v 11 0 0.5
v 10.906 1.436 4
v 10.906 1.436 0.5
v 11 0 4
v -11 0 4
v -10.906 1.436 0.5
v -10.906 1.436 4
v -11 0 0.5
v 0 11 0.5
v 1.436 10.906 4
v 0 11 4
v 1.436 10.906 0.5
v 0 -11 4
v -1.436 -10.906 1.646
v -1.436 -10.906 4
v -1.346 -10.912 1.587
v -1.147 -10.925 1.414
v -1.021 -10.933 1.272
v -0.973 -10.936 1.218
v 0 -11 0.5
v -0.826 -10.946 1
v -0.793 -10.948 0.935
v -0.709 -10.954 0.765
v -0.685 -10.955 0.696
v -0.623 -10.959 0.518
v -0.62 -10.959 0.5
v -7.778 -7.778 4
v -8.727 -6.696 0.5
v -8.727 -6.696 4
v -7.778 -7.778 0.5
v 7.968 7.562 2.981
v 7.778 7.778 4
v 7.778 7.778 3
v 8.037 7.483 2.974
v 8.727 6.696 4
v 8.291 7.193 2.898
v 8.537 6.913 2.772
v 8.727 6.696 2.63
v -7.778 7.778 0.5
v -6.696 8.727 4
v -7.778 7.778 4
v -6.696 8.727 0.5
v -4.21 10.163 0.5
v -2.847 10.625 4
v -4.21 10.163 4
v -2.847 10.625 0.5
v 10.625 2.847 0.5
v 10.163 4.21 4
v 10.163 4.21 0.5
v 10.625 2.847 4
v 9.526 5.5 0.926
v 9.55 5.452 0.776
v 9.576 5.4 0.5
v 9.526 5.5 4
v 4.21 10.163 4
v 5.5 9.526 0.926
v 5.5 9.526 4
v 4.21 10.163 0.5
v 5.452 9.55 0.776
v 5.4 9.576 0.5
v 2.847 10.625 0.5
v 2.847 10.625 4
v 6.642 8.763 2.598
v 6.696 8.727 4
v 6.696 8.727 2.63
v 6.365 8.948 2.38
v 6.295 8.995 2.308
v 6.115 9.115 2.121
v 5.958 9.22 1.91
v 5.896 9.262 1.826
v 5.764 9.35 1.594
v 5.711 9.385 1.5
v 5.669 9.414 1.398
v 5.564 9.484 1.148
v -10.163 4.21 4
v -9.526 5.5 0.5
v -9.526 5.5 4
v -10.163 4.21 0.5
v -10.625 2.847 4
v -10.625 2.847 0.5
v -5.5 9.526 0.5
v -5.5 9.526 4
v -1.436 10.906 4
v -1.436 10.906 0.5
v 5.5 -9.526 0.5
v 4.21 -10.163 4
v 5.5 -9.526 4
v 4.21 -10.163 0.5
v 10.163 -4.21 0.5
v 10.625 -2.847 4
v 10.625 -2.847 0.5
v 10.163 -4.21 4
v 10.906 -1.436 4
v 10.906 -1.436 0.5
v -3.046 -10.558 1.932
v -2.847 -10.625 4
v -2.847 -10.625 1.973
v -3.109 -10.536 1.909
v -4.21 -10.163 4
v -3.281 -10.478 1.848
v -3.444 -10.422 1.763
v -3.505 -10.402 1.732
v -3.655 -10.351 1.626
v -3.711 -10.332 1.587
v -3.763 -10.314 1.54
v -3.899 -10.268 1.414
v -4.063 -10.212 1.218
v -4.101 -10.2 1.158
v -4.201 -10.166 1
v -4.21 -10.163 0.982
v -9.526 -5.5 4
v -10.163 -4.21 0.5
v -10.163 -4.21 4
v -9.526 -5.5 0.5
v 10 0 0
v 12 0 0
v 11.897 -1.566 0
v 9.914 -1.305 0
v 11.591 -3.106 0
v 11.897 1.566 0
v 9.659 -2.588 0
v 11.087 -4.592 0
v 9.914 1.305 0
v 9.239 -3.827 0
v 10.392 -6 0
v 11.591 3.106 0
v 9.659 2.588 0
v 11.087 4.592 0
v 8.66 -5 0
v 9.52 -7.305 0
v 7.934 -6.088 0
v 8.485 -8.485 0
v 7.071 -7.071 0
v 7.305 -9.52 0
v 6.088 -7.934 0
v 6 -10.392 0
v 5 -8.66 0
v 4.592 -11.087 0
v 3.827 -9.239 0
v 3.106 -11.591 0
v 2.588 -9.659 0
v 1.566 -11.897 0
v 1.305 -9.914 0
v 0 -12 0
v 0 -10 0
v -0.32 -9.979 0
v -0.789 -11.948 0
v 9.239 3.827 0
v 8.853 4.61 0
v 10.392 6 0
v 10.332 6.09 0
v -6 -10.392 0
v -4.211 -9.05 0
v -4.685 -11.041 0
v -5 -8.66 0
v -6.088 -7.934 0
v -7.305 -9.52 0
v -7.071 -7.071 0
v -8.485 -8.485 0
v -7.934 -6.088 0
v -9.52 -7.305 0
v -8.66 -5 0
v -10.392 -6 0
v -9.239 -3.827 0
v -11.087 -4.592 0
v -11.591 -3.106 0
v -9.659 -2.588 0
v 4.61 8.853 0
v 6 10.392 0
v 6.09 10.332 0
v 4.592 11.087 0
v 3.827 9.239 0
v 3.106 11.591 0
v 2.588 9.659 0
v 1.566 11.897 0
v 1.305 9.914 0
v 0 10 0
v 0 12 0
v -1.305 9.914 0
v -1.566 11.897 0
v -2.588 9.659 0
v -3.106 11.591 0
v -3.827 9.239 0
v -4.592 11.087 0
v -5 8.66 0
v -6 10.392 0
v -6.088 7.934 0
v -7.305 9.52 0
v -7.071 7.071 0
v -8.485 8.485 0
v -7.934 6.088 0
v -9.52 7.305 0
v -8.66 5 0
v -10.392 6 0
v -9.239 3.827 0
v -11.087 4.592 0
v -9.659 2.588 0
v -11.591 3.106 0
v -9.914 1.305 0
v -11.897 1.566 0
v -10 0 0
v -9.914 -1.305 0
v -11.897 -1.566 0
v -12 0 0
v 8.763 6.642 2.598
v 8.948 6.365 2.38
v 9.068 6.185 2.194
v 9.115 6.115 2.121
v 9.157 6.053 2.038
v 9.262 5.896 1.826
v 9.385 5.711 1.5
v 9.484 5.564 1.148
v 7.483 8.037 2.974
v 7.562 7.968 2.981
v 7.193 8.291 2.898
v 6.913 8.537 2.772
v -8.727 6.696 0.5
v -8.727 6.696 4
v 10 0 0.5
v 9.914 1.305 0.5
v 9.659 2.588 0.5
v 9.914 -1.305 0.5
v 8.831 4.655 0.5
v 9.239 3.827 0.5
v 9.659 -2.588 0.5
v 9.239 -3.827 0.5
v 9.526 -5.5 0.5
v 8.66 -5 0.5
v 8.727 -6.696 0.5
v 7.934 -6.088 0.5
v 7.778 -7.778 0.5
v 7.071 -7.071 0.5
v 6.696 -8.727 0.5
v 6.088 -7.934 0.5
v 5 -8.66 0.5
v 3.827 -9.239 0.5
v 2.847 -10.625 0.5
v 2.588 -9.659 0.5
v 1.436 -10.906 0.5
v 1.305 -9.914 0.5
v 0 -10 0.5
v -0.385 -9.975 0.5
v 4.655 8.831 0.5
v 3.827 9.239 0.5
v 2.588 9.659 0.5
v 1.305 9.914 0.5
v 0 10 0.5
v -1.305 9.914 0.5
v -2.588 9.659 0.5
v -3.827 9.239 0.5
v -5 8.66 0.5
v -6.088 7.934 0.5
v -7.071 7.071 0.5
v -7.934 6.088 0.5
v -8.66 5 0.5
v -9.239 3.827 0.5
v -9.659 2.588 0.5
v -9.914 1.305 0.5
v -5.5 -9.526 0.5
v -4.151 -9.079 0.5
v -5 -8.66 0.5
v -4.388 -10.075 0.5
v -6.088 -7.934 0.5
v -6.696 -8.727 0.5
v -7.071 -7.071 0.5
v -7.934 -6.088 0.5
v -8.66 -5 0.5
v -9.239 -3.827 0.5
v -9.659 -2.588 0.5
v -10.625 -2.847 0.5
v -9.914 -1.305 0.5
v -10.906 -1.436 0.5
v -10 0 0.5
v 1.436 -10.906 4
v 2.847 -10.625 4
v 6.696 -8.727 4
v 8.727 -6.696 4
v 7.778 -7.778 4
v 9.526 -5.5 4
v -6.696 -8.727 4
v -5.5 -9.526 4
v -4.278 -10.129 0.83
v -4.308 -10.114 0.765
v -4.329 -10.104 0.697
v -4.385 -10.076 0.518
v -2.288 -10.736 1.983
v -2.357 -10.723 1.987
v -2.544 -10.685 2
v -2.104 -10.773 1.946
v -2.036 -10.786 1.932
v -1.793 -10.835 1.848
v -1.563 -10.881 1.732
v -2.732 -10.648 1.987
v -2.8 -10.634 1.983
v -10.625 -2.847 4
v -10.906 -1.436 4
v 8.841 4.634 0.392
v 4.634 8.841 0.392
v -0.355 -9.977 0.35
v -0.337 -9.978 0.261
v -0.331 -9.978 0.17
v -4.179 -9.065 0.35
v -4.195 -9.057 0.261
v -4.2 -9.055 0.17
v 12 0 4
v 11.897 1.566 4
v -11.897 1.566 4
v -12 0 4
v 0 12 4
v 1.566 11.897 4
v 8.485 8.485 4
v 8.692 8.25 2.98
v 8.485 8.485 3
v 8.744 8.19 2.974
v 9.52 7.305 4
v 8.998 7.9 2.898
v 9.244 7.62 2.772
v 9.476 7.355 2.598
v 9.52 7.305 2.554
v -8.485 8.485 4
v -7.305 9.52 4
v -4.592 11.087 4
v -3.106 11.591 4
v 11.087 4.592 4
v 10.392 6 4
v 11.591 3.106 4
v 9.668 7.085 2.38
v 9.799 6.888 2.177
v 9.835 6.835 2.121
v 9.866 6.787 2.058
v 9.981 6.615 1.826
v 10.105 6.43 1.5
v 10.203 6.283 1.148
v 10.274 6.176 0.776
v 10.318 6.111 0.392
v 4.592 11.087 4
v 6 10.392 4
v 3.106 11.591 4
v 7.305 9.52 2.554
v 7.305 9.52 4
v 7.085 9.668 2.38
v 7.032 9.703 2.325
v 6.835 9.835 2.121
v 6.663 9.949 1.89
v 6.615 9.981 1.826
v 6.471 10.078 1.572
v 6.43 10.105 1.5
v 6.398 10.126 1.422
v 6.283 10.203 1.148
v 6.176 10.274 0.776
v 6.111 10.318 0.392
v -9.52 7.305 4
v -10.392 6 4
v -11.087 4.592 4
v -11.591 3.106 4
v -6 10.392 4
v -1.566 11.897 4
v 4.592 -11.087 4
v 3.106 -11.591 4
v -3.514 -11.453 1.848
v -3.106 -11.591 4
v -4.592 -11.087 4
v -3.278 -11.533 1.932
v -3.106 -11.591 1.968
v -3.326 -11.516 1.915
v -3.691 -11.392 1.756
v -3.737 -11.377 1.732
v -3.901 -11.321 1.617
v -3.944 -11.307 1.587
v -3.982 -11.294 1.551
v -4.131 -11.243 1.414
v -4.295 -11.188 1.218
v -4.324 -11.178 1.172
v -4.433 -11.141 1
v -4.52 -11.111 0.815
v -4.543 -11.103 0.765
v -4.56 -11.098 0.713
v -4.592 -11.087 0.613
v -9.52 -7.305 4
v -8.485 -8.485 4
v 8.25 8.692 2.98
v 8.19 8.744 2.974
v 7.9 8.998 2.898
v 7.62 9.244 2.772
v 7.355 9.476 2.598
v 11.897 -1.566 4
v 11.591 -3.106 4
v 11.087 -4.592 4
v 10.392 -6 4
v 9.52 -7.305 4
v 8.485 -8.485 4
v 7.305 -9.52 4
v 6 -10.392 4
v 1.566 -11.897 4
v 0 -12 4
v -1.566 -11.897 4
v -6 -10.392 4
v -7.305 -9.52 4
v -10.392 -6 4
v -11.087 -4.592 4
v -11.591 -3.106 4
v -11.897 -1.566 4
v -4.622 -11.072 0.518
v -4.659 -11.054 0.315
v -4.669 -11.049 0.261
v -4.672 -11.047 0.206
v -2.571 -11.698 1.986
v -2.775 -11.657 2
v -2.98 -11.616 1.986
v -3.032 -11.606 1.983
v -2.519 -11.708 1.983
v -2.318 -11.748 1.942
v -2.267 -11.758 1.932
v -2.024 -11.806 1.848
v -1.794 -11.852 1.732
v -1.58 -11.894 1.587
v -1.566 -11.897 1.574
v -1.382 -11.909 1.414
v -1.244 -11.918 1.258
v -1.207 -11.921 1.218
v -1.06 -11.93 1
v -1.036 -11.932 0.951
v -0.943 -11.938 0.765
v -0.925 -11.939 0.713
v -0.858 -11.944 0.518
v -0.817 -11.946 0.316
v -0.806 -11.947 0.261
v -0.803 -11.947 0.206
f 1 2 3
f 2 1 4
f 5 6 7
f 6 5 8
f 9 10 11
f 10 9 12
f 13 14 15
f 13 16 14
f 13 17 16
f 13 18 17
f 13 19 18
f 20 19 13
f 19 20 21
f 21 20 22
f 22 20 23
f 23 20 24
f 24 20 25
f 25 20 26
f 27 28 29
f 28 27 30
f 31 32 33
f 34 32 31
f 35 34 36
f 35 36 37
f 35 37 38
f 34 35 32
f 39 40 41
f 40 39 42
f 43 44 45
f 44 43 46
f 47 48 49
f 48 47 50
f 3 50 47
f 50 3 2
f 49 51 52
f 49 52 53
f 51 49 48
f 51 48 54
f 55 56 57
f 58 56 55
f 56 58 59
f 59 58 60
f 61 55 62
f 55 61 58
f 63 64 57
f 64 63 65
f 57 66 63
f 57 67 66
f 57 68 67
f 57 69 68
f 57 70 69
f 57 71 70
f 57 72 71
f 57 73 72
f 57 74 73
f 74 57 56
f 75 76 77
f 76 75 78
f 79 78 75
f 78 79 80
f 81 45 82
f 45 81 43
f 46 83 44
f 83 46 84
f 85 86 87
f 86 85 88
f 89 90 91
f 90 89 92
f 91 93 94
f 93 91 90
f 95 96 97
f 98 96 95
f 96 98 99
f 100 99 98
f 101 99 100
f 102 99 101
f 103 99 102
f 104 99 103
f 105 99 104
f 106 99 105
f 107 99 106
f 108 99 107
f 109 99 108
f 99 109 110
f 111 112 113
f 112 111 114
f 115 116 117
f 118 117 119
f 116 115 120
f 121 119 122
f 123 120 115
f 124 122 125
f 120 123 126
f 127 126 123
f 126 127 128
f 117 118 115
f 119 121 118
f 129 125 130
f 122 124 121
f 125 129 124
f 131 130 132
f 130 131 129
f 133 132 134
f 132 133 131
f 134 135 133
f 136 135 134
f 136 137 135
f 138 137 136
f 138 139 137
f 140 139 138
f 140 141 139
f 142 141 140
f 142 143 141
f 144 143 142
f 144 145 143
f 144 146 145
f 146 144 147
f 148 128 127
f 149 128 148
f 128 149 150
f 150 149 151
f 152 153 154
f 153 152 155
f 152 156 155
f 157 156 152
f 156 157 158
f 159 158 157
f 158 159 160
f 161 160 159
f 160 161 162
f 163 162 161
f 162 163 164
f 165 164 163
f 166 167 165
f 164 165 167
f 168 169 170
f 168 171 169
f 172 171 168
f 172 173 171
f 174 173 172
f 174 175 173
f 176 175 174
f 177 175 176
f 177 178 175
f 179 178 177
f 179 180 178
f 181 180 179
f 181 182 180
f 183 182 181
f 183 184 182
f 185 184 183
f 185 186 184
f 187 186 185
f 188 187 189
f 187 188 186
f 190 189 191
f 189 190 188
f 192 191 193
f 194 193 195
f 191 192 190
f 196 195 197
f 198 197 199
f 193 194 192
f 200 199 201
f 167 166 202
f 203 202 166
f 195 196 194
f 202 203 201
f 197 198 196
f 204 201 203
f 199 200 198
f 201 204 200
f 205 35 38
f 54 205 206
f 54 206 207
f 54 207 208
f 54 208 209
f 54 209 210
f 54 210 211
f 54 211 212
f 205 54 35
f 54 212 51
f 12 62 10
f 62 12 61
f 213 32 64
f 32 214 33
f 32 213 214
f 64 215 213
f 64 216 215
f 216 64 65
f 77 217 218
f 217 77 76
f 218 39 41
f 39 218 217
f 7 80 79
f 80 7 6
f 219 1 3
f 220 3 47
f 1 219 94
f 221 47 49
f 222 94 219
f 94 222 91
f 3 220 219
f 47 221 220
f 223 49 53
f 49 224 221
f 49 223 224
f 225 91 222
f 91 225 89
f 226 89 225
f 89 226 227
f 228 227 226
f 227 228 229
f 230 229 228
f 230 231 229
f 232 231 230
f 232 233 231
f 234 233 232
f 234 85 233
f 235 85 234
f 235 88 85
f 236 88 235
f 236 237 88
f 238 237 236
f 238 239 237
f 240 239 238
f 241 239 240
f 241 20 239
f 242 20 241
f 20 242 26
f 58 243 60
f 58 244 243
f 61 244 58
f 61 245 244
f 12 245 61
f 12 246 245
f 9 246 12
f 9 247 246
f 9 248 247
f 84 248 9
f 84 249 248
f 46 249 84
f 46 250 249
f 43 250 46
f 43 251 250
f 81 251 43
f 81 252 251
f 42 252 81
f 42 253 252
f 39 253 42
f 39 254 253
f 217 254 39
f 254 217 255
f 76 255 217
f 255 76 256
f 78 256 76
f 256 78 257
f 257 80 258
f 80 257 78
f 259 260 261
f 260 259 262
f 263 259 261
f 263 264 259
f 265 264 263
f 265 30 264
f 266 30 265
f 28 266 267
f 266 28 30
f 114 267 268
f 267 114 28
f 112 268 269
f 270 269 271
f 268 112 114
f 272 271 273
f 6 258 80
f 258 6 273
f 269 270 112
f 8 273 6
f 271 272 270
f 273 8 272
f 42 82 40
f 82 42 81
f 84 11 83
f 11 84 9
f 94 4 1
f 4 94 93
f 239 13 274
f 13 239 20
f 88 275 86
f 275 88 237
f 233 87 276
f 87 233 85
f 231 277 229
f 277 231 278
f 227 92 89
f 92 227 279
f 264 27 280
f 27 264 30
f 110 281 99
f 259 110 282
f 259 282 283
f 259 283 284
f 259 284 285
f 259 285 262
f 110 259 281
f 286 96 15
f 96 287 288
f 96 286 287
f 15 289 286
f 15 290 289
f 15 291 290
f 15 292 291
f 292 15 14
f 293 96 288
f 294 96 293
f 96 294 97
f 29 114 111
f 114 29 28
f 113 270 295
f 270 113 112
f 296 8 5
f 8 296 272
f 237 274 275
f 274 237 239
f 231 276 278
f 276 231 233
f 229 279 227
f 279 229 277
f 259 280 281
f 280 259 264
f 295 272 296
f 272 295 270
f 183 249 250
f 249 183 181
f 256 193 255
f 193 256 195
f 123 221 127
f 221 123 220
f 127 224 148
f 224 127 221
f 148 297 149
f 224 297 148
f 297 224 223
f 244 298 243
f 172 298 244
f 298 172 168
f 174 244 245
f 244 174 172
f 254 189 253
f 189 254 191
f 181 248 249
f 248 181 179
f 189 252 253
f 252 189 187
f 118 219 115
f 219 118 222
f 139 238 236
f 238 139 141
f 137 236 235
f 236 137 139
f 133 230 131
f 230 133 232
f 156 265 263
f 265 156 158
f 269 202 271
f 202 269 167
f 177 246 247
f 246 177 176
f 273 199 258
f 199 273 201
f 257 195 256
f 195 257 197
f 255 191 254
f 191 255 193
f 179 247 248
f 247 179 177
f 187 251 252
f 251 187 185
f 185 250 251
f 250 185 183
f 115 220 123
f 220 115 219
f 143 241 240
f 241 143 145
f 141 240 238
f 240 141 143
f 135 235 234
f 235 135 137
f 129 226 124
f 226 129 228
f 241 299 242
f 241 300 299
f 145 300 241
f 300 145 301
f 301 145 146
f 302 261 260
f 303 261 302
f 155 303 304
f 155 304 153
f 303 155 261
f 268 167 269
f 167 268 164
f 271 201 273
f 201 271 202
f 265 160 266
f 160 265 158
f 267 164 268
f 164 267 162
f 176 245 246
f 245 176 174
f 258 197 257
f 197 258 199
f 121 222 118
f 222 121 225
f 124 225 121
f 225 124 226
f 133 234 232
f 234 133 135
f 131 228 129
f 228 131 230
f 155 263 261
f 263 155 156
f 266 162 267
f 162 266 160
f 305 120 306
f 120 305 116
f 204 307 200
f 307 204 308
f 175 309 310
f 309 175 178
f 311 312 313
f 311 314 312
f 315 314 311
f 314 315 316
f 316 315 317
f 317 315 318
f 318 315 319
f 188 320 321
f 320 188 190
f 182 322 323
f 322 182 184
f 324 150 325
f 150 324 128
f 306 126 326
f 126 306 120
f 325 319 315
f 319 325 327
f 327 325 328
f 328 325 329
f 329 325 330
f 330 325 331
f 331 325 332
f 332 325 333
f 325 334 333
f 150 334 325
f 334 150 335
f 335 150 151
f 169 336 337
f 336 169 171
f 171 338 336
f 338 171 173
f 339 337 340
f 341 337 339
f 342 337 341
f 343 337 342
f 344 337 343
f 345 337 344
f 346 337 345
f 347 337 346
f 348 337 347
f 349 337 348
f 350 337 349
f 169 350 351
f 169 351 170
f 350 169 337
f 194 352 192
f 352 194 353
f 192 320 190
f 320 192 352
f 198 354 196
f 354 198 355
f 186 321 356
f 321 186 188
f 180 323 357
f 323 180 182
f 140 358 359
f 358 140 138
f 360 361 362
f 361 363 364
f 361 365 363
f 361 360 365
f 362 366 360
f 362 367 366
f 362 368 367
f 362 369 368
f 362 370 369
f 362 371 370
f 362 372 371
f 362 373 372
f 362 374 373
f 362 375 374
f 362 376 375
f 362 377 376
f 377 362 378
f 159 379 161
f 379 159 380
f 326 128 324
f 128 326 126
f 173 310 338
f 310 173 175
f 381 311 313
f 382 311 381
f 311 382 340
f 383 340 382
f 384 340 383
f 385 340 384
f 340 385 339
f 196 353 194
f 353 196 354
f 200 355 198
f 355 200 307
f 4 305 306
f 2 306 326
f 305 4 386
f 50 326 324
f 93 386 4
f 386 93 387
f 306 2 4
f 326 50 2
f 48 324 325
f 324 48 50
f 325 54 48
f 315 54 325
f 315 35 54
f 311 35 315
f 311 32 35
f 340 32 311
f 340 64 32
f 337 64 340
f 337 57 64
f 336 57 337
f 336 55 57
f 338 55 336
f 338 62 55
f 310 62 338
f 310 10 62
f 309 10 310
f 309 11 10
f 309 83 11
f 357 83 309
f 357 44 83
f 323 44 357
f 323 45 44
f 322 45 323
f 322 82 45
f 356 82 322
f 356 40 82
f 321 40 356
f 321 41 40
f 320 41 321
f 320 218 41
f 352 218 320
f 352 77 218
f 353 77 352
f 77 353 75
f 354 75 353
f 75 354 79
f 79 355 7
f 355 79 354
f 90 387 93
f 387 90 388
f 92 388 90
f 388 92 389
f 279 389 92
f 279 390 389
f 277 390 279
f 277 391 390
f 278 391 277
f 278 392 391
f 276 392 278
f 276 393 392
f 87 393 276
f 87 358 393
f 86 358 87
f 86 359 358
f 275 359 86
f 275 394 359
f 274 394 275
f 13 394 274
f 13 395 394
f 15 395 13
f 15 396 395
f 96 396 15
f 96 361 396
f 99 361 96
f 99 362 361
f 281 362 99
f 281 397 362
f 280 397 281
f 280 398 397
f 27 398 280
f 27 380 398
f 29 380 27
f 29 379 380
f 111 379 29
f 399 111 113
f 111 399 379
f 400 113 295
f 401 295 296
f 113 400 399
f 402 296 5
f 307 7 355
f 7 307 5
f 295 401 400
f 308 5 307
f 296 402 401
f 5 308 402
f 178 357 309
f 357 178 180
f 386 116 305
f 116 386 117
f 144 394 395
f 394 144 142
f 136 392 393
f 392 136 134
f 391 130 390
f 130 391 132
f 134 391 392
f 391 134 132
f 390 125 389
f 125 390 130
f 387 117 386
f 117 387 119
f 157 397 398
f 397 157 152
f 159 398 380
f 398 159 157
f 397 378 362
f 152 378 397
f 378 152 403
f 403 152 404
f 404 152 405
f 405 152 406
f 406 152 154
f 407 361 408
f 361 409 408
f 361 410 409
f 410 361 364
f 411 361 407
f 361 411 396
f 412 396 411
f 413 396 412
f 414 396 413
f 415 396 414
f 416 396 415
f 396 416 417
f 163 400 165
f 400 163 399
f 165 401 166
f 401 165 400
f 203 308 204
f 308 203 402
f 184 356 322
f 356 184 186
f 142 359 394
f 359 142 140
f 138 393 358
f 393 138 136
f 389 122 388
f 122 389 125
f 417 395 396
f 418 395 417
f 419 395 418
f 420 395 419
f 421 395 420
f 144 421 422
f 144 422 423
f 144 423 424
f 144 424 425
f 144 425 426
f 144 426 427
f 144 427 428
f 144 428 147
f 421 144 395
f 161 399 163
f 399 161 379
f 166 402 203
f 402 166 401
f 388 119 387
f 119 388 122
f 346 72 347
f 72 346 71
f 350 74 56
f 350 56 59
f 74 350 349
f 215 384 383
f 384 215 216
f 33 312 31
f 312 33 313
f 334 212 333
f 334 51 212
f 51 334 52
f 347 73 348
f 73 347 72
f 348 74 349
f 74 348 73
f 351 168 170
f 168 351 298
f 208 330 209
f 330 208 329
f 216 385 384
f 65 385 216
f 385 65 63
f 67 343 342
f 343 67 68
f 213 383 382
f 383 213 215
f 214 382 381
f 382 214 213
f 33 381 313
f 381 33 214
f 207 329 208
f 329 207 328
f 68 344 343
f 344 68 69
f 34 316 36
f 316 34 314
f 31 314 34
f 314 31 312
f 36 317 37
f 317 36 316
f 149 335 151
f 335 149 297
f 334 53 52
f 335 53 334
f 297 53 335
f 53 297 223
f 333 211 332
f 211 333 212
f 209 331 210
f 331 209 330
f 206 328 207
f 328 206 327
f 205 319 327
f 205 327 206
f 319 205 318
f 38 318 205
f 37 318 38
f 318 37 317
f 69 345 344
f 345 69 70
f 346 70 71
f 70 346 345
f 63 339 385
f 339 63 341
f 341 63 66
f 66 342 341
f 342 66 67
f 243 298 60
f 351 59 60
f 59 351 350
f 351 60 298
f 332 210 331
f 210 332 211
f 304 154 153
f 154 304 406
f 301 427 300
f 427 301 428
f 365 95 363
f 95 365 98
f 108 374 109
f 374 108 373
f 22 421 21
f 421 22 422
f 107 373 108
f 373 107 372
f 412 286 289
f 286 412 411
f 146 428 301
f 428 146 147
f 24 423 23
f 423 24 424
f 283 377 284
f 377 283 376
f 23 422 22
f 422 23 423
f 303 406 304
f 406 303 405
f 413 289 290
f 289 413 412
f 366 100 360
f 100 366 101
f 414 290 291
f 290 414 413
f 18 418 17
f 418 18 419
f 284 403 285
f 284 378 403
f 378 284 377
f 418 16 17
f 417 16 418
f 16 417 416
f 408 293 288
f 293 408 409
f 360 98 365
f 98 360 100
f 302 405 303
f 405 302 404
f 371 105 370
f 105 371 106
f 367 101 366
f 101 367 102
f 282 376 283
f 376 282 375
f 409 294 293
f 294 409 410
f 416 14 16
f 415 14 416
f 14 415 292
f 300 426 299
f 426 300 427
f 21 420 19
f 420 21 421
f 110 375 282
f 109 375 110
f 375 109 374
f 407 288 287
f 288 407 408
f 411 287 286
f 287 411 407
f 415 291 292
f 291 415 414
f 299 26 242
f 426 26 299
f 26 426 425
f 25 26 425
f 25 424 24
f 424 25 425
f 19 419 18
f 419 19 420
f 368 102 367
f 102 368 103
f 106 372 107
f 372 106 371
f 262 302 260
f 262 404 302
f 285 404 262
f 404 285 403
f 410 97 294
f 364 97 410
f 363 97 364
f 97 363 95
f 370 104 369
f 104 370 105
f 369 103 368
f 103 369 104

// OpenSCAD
// file: ../build_environments.scad
// build_environments.scad: modules to build level sections
//

module pool(diameter=10.0, wall_height=2.0, step_width=3.0, connections=[])
{
    difference() {
        union() {
        difference() {
            cylinder(h=0.5,r1=diameter+step_width,r2=diameter+step_width,$fn=48);
            translate([0,0,-0.1])
                cylinder(h=0.7,r1=diameter,r2=diameter,$fn=48);
        }
        difference() {
            cylinder(h=wall_height,r1=diameter+step_width+1.0,r2=diameter+step_width+1.0,$fn=48);
            translate([0,0,-0.1])
                cylinder(h=wall_height+0.2,r1=diameter+step_width,r2=diameter+step_width,$fn=48);
        }
        }
    
        for (c = connections)
        {
            rotate([0,90,0]) {
                angle = atan2(c[1],c[0]);
                rotate([-angle,0,0]) {
                    cylinder(h=diameter+5.0,r1=c[2],r2=c[2],$fn=48);
                }
            }
        }
    }
}

module straight(length=10.0, width=2.0, dy1=0.0, dy2=0.0, dz=0.0)
{
    dims = [0, 0, 0, 0, 0, (dz/length)];
    matrix = [
        [ 1, dims[0], dims[1], 0 ],
        [ dims[2], 1, dims[4], 0 ],
        [ dims[5], dims[3], 1, 0 ],
        [ 0, 0, 0, 1 ]
    ];
    multmatrix(matrix)
    difference() {
        translate([dy1,0,0])
        union() {
            rotate([0,90,0]) {
                difference() {
                    cylinder(h=(length-dy1-dy2),r1=width+1.0,r2=width+1.0,$fn=24);
                    translate([0,0,-0.1])
                        cylinder(h=(length-dy1-dy2+0.2),r1=width,r2=width,$fn=24);
                }
                difference() {
                    cylinder(h=1.0,r1=width+2.0,r2=width+2.0,$fn=24);
                    translate([0,0,-0.1])
                        cylinder(h=1.2,r1=width,r2=width,$fn=24);
                }
                translate([0,0,(length-dy1-dy2)-1.0]) {
                    difference() {
                        cylinder(h=1.0,r1=width+2.0,r2=width+2.0,$fn=24);
                        translate([0,0,-0.1])
                            cylinder(h=1.2,r1=width,r2=width,$fn=24);
                    }
                }
            }
        }
        translate([0,0,-(2*width+4.0)/2])
            cube([3*length,3*length,2*width+4.0],center=true);
    }
}

module curve(p0=[0,0], center=[0,0], dir=1, angle=0.0, width=2.0)
{
    radius = sqrt((p0[0]-center[0])*(p0[0]-center[0]) + (p0[1]-center[1])*(p0[1]-center[1]));
    if (dir == 0) {
        difference() {
            rotate([0,0,-90])
            difference() {
                rotate_extrude(angle = angle, convexity = 10, $fn=32)
                    translate([radius, 0, 0])
                        circle(r = width+1.0,$fn=24);
                rotate([0,0,-1.0])
                    rotate_extrude(angle = angle+2.0, convexity = 10, $fn=32)
                        translate([radius, 0, 0])
                            circle(r = width,$fn=24);
            }
            translate([0,0,-(2*width+4.0)/2])
                cube([5*radius,5*radius,2*width+4.0],center=true);
        }
    }
    else {
        difference() {
            rotate([0,0,90])
            difference() {
                rotate_extrude(angle = -angle, convexity = 10, $fn=32)
                    translate([radius, 0, 0])
                        circle(r = width+1.0,$fn=24);
                rotate([0,0,1.0])
                    rotate_extrude(angle = -angle-2.0, convexity = 10, $fn=32)
                        translate([radius, 0, 0])
                            circle(r = width,$fn=24);
            }
            translate([0,0,-(2*width+4.0)/2])
                cube([5*radius,5*radius,2*width+4.0],center=true);
        }
    }

}

// test pool
//pool(diameter=12.0000, wall_height=3.0000, step_width=3.0000, connections=[[0.0000,-26.0000,2.0000], [23.6074,0.0000,2.0000]]);

// test straight, slope
//straight(length=26.0000, width=2.0000, dy1=11.8322, dy2=6.7082, dz=0.0000);
//straight(length=29.1549, width=12.0000, dy1=0.0000, dy2=0.0000, dz=-15.0000);

// test curve
//curve(p0=[23.6074, 0.0000], center=[23.6074, 5.0000], dir=0, angle=60.1011, width=2.0000);
//curve(p0=[33.6426, 12.4219], center=[37.9771, 9.9295], dir=1, angle=120.4627, width=2.0000);
// main file
use <../build_environments.scad>;
pool(diameter=10.0000, wall_height=4.0000, step_width=1.0000, connections=[[7.2161,7.2161,3.0000], [-5.0000,-21.0000,2.0000]]);
